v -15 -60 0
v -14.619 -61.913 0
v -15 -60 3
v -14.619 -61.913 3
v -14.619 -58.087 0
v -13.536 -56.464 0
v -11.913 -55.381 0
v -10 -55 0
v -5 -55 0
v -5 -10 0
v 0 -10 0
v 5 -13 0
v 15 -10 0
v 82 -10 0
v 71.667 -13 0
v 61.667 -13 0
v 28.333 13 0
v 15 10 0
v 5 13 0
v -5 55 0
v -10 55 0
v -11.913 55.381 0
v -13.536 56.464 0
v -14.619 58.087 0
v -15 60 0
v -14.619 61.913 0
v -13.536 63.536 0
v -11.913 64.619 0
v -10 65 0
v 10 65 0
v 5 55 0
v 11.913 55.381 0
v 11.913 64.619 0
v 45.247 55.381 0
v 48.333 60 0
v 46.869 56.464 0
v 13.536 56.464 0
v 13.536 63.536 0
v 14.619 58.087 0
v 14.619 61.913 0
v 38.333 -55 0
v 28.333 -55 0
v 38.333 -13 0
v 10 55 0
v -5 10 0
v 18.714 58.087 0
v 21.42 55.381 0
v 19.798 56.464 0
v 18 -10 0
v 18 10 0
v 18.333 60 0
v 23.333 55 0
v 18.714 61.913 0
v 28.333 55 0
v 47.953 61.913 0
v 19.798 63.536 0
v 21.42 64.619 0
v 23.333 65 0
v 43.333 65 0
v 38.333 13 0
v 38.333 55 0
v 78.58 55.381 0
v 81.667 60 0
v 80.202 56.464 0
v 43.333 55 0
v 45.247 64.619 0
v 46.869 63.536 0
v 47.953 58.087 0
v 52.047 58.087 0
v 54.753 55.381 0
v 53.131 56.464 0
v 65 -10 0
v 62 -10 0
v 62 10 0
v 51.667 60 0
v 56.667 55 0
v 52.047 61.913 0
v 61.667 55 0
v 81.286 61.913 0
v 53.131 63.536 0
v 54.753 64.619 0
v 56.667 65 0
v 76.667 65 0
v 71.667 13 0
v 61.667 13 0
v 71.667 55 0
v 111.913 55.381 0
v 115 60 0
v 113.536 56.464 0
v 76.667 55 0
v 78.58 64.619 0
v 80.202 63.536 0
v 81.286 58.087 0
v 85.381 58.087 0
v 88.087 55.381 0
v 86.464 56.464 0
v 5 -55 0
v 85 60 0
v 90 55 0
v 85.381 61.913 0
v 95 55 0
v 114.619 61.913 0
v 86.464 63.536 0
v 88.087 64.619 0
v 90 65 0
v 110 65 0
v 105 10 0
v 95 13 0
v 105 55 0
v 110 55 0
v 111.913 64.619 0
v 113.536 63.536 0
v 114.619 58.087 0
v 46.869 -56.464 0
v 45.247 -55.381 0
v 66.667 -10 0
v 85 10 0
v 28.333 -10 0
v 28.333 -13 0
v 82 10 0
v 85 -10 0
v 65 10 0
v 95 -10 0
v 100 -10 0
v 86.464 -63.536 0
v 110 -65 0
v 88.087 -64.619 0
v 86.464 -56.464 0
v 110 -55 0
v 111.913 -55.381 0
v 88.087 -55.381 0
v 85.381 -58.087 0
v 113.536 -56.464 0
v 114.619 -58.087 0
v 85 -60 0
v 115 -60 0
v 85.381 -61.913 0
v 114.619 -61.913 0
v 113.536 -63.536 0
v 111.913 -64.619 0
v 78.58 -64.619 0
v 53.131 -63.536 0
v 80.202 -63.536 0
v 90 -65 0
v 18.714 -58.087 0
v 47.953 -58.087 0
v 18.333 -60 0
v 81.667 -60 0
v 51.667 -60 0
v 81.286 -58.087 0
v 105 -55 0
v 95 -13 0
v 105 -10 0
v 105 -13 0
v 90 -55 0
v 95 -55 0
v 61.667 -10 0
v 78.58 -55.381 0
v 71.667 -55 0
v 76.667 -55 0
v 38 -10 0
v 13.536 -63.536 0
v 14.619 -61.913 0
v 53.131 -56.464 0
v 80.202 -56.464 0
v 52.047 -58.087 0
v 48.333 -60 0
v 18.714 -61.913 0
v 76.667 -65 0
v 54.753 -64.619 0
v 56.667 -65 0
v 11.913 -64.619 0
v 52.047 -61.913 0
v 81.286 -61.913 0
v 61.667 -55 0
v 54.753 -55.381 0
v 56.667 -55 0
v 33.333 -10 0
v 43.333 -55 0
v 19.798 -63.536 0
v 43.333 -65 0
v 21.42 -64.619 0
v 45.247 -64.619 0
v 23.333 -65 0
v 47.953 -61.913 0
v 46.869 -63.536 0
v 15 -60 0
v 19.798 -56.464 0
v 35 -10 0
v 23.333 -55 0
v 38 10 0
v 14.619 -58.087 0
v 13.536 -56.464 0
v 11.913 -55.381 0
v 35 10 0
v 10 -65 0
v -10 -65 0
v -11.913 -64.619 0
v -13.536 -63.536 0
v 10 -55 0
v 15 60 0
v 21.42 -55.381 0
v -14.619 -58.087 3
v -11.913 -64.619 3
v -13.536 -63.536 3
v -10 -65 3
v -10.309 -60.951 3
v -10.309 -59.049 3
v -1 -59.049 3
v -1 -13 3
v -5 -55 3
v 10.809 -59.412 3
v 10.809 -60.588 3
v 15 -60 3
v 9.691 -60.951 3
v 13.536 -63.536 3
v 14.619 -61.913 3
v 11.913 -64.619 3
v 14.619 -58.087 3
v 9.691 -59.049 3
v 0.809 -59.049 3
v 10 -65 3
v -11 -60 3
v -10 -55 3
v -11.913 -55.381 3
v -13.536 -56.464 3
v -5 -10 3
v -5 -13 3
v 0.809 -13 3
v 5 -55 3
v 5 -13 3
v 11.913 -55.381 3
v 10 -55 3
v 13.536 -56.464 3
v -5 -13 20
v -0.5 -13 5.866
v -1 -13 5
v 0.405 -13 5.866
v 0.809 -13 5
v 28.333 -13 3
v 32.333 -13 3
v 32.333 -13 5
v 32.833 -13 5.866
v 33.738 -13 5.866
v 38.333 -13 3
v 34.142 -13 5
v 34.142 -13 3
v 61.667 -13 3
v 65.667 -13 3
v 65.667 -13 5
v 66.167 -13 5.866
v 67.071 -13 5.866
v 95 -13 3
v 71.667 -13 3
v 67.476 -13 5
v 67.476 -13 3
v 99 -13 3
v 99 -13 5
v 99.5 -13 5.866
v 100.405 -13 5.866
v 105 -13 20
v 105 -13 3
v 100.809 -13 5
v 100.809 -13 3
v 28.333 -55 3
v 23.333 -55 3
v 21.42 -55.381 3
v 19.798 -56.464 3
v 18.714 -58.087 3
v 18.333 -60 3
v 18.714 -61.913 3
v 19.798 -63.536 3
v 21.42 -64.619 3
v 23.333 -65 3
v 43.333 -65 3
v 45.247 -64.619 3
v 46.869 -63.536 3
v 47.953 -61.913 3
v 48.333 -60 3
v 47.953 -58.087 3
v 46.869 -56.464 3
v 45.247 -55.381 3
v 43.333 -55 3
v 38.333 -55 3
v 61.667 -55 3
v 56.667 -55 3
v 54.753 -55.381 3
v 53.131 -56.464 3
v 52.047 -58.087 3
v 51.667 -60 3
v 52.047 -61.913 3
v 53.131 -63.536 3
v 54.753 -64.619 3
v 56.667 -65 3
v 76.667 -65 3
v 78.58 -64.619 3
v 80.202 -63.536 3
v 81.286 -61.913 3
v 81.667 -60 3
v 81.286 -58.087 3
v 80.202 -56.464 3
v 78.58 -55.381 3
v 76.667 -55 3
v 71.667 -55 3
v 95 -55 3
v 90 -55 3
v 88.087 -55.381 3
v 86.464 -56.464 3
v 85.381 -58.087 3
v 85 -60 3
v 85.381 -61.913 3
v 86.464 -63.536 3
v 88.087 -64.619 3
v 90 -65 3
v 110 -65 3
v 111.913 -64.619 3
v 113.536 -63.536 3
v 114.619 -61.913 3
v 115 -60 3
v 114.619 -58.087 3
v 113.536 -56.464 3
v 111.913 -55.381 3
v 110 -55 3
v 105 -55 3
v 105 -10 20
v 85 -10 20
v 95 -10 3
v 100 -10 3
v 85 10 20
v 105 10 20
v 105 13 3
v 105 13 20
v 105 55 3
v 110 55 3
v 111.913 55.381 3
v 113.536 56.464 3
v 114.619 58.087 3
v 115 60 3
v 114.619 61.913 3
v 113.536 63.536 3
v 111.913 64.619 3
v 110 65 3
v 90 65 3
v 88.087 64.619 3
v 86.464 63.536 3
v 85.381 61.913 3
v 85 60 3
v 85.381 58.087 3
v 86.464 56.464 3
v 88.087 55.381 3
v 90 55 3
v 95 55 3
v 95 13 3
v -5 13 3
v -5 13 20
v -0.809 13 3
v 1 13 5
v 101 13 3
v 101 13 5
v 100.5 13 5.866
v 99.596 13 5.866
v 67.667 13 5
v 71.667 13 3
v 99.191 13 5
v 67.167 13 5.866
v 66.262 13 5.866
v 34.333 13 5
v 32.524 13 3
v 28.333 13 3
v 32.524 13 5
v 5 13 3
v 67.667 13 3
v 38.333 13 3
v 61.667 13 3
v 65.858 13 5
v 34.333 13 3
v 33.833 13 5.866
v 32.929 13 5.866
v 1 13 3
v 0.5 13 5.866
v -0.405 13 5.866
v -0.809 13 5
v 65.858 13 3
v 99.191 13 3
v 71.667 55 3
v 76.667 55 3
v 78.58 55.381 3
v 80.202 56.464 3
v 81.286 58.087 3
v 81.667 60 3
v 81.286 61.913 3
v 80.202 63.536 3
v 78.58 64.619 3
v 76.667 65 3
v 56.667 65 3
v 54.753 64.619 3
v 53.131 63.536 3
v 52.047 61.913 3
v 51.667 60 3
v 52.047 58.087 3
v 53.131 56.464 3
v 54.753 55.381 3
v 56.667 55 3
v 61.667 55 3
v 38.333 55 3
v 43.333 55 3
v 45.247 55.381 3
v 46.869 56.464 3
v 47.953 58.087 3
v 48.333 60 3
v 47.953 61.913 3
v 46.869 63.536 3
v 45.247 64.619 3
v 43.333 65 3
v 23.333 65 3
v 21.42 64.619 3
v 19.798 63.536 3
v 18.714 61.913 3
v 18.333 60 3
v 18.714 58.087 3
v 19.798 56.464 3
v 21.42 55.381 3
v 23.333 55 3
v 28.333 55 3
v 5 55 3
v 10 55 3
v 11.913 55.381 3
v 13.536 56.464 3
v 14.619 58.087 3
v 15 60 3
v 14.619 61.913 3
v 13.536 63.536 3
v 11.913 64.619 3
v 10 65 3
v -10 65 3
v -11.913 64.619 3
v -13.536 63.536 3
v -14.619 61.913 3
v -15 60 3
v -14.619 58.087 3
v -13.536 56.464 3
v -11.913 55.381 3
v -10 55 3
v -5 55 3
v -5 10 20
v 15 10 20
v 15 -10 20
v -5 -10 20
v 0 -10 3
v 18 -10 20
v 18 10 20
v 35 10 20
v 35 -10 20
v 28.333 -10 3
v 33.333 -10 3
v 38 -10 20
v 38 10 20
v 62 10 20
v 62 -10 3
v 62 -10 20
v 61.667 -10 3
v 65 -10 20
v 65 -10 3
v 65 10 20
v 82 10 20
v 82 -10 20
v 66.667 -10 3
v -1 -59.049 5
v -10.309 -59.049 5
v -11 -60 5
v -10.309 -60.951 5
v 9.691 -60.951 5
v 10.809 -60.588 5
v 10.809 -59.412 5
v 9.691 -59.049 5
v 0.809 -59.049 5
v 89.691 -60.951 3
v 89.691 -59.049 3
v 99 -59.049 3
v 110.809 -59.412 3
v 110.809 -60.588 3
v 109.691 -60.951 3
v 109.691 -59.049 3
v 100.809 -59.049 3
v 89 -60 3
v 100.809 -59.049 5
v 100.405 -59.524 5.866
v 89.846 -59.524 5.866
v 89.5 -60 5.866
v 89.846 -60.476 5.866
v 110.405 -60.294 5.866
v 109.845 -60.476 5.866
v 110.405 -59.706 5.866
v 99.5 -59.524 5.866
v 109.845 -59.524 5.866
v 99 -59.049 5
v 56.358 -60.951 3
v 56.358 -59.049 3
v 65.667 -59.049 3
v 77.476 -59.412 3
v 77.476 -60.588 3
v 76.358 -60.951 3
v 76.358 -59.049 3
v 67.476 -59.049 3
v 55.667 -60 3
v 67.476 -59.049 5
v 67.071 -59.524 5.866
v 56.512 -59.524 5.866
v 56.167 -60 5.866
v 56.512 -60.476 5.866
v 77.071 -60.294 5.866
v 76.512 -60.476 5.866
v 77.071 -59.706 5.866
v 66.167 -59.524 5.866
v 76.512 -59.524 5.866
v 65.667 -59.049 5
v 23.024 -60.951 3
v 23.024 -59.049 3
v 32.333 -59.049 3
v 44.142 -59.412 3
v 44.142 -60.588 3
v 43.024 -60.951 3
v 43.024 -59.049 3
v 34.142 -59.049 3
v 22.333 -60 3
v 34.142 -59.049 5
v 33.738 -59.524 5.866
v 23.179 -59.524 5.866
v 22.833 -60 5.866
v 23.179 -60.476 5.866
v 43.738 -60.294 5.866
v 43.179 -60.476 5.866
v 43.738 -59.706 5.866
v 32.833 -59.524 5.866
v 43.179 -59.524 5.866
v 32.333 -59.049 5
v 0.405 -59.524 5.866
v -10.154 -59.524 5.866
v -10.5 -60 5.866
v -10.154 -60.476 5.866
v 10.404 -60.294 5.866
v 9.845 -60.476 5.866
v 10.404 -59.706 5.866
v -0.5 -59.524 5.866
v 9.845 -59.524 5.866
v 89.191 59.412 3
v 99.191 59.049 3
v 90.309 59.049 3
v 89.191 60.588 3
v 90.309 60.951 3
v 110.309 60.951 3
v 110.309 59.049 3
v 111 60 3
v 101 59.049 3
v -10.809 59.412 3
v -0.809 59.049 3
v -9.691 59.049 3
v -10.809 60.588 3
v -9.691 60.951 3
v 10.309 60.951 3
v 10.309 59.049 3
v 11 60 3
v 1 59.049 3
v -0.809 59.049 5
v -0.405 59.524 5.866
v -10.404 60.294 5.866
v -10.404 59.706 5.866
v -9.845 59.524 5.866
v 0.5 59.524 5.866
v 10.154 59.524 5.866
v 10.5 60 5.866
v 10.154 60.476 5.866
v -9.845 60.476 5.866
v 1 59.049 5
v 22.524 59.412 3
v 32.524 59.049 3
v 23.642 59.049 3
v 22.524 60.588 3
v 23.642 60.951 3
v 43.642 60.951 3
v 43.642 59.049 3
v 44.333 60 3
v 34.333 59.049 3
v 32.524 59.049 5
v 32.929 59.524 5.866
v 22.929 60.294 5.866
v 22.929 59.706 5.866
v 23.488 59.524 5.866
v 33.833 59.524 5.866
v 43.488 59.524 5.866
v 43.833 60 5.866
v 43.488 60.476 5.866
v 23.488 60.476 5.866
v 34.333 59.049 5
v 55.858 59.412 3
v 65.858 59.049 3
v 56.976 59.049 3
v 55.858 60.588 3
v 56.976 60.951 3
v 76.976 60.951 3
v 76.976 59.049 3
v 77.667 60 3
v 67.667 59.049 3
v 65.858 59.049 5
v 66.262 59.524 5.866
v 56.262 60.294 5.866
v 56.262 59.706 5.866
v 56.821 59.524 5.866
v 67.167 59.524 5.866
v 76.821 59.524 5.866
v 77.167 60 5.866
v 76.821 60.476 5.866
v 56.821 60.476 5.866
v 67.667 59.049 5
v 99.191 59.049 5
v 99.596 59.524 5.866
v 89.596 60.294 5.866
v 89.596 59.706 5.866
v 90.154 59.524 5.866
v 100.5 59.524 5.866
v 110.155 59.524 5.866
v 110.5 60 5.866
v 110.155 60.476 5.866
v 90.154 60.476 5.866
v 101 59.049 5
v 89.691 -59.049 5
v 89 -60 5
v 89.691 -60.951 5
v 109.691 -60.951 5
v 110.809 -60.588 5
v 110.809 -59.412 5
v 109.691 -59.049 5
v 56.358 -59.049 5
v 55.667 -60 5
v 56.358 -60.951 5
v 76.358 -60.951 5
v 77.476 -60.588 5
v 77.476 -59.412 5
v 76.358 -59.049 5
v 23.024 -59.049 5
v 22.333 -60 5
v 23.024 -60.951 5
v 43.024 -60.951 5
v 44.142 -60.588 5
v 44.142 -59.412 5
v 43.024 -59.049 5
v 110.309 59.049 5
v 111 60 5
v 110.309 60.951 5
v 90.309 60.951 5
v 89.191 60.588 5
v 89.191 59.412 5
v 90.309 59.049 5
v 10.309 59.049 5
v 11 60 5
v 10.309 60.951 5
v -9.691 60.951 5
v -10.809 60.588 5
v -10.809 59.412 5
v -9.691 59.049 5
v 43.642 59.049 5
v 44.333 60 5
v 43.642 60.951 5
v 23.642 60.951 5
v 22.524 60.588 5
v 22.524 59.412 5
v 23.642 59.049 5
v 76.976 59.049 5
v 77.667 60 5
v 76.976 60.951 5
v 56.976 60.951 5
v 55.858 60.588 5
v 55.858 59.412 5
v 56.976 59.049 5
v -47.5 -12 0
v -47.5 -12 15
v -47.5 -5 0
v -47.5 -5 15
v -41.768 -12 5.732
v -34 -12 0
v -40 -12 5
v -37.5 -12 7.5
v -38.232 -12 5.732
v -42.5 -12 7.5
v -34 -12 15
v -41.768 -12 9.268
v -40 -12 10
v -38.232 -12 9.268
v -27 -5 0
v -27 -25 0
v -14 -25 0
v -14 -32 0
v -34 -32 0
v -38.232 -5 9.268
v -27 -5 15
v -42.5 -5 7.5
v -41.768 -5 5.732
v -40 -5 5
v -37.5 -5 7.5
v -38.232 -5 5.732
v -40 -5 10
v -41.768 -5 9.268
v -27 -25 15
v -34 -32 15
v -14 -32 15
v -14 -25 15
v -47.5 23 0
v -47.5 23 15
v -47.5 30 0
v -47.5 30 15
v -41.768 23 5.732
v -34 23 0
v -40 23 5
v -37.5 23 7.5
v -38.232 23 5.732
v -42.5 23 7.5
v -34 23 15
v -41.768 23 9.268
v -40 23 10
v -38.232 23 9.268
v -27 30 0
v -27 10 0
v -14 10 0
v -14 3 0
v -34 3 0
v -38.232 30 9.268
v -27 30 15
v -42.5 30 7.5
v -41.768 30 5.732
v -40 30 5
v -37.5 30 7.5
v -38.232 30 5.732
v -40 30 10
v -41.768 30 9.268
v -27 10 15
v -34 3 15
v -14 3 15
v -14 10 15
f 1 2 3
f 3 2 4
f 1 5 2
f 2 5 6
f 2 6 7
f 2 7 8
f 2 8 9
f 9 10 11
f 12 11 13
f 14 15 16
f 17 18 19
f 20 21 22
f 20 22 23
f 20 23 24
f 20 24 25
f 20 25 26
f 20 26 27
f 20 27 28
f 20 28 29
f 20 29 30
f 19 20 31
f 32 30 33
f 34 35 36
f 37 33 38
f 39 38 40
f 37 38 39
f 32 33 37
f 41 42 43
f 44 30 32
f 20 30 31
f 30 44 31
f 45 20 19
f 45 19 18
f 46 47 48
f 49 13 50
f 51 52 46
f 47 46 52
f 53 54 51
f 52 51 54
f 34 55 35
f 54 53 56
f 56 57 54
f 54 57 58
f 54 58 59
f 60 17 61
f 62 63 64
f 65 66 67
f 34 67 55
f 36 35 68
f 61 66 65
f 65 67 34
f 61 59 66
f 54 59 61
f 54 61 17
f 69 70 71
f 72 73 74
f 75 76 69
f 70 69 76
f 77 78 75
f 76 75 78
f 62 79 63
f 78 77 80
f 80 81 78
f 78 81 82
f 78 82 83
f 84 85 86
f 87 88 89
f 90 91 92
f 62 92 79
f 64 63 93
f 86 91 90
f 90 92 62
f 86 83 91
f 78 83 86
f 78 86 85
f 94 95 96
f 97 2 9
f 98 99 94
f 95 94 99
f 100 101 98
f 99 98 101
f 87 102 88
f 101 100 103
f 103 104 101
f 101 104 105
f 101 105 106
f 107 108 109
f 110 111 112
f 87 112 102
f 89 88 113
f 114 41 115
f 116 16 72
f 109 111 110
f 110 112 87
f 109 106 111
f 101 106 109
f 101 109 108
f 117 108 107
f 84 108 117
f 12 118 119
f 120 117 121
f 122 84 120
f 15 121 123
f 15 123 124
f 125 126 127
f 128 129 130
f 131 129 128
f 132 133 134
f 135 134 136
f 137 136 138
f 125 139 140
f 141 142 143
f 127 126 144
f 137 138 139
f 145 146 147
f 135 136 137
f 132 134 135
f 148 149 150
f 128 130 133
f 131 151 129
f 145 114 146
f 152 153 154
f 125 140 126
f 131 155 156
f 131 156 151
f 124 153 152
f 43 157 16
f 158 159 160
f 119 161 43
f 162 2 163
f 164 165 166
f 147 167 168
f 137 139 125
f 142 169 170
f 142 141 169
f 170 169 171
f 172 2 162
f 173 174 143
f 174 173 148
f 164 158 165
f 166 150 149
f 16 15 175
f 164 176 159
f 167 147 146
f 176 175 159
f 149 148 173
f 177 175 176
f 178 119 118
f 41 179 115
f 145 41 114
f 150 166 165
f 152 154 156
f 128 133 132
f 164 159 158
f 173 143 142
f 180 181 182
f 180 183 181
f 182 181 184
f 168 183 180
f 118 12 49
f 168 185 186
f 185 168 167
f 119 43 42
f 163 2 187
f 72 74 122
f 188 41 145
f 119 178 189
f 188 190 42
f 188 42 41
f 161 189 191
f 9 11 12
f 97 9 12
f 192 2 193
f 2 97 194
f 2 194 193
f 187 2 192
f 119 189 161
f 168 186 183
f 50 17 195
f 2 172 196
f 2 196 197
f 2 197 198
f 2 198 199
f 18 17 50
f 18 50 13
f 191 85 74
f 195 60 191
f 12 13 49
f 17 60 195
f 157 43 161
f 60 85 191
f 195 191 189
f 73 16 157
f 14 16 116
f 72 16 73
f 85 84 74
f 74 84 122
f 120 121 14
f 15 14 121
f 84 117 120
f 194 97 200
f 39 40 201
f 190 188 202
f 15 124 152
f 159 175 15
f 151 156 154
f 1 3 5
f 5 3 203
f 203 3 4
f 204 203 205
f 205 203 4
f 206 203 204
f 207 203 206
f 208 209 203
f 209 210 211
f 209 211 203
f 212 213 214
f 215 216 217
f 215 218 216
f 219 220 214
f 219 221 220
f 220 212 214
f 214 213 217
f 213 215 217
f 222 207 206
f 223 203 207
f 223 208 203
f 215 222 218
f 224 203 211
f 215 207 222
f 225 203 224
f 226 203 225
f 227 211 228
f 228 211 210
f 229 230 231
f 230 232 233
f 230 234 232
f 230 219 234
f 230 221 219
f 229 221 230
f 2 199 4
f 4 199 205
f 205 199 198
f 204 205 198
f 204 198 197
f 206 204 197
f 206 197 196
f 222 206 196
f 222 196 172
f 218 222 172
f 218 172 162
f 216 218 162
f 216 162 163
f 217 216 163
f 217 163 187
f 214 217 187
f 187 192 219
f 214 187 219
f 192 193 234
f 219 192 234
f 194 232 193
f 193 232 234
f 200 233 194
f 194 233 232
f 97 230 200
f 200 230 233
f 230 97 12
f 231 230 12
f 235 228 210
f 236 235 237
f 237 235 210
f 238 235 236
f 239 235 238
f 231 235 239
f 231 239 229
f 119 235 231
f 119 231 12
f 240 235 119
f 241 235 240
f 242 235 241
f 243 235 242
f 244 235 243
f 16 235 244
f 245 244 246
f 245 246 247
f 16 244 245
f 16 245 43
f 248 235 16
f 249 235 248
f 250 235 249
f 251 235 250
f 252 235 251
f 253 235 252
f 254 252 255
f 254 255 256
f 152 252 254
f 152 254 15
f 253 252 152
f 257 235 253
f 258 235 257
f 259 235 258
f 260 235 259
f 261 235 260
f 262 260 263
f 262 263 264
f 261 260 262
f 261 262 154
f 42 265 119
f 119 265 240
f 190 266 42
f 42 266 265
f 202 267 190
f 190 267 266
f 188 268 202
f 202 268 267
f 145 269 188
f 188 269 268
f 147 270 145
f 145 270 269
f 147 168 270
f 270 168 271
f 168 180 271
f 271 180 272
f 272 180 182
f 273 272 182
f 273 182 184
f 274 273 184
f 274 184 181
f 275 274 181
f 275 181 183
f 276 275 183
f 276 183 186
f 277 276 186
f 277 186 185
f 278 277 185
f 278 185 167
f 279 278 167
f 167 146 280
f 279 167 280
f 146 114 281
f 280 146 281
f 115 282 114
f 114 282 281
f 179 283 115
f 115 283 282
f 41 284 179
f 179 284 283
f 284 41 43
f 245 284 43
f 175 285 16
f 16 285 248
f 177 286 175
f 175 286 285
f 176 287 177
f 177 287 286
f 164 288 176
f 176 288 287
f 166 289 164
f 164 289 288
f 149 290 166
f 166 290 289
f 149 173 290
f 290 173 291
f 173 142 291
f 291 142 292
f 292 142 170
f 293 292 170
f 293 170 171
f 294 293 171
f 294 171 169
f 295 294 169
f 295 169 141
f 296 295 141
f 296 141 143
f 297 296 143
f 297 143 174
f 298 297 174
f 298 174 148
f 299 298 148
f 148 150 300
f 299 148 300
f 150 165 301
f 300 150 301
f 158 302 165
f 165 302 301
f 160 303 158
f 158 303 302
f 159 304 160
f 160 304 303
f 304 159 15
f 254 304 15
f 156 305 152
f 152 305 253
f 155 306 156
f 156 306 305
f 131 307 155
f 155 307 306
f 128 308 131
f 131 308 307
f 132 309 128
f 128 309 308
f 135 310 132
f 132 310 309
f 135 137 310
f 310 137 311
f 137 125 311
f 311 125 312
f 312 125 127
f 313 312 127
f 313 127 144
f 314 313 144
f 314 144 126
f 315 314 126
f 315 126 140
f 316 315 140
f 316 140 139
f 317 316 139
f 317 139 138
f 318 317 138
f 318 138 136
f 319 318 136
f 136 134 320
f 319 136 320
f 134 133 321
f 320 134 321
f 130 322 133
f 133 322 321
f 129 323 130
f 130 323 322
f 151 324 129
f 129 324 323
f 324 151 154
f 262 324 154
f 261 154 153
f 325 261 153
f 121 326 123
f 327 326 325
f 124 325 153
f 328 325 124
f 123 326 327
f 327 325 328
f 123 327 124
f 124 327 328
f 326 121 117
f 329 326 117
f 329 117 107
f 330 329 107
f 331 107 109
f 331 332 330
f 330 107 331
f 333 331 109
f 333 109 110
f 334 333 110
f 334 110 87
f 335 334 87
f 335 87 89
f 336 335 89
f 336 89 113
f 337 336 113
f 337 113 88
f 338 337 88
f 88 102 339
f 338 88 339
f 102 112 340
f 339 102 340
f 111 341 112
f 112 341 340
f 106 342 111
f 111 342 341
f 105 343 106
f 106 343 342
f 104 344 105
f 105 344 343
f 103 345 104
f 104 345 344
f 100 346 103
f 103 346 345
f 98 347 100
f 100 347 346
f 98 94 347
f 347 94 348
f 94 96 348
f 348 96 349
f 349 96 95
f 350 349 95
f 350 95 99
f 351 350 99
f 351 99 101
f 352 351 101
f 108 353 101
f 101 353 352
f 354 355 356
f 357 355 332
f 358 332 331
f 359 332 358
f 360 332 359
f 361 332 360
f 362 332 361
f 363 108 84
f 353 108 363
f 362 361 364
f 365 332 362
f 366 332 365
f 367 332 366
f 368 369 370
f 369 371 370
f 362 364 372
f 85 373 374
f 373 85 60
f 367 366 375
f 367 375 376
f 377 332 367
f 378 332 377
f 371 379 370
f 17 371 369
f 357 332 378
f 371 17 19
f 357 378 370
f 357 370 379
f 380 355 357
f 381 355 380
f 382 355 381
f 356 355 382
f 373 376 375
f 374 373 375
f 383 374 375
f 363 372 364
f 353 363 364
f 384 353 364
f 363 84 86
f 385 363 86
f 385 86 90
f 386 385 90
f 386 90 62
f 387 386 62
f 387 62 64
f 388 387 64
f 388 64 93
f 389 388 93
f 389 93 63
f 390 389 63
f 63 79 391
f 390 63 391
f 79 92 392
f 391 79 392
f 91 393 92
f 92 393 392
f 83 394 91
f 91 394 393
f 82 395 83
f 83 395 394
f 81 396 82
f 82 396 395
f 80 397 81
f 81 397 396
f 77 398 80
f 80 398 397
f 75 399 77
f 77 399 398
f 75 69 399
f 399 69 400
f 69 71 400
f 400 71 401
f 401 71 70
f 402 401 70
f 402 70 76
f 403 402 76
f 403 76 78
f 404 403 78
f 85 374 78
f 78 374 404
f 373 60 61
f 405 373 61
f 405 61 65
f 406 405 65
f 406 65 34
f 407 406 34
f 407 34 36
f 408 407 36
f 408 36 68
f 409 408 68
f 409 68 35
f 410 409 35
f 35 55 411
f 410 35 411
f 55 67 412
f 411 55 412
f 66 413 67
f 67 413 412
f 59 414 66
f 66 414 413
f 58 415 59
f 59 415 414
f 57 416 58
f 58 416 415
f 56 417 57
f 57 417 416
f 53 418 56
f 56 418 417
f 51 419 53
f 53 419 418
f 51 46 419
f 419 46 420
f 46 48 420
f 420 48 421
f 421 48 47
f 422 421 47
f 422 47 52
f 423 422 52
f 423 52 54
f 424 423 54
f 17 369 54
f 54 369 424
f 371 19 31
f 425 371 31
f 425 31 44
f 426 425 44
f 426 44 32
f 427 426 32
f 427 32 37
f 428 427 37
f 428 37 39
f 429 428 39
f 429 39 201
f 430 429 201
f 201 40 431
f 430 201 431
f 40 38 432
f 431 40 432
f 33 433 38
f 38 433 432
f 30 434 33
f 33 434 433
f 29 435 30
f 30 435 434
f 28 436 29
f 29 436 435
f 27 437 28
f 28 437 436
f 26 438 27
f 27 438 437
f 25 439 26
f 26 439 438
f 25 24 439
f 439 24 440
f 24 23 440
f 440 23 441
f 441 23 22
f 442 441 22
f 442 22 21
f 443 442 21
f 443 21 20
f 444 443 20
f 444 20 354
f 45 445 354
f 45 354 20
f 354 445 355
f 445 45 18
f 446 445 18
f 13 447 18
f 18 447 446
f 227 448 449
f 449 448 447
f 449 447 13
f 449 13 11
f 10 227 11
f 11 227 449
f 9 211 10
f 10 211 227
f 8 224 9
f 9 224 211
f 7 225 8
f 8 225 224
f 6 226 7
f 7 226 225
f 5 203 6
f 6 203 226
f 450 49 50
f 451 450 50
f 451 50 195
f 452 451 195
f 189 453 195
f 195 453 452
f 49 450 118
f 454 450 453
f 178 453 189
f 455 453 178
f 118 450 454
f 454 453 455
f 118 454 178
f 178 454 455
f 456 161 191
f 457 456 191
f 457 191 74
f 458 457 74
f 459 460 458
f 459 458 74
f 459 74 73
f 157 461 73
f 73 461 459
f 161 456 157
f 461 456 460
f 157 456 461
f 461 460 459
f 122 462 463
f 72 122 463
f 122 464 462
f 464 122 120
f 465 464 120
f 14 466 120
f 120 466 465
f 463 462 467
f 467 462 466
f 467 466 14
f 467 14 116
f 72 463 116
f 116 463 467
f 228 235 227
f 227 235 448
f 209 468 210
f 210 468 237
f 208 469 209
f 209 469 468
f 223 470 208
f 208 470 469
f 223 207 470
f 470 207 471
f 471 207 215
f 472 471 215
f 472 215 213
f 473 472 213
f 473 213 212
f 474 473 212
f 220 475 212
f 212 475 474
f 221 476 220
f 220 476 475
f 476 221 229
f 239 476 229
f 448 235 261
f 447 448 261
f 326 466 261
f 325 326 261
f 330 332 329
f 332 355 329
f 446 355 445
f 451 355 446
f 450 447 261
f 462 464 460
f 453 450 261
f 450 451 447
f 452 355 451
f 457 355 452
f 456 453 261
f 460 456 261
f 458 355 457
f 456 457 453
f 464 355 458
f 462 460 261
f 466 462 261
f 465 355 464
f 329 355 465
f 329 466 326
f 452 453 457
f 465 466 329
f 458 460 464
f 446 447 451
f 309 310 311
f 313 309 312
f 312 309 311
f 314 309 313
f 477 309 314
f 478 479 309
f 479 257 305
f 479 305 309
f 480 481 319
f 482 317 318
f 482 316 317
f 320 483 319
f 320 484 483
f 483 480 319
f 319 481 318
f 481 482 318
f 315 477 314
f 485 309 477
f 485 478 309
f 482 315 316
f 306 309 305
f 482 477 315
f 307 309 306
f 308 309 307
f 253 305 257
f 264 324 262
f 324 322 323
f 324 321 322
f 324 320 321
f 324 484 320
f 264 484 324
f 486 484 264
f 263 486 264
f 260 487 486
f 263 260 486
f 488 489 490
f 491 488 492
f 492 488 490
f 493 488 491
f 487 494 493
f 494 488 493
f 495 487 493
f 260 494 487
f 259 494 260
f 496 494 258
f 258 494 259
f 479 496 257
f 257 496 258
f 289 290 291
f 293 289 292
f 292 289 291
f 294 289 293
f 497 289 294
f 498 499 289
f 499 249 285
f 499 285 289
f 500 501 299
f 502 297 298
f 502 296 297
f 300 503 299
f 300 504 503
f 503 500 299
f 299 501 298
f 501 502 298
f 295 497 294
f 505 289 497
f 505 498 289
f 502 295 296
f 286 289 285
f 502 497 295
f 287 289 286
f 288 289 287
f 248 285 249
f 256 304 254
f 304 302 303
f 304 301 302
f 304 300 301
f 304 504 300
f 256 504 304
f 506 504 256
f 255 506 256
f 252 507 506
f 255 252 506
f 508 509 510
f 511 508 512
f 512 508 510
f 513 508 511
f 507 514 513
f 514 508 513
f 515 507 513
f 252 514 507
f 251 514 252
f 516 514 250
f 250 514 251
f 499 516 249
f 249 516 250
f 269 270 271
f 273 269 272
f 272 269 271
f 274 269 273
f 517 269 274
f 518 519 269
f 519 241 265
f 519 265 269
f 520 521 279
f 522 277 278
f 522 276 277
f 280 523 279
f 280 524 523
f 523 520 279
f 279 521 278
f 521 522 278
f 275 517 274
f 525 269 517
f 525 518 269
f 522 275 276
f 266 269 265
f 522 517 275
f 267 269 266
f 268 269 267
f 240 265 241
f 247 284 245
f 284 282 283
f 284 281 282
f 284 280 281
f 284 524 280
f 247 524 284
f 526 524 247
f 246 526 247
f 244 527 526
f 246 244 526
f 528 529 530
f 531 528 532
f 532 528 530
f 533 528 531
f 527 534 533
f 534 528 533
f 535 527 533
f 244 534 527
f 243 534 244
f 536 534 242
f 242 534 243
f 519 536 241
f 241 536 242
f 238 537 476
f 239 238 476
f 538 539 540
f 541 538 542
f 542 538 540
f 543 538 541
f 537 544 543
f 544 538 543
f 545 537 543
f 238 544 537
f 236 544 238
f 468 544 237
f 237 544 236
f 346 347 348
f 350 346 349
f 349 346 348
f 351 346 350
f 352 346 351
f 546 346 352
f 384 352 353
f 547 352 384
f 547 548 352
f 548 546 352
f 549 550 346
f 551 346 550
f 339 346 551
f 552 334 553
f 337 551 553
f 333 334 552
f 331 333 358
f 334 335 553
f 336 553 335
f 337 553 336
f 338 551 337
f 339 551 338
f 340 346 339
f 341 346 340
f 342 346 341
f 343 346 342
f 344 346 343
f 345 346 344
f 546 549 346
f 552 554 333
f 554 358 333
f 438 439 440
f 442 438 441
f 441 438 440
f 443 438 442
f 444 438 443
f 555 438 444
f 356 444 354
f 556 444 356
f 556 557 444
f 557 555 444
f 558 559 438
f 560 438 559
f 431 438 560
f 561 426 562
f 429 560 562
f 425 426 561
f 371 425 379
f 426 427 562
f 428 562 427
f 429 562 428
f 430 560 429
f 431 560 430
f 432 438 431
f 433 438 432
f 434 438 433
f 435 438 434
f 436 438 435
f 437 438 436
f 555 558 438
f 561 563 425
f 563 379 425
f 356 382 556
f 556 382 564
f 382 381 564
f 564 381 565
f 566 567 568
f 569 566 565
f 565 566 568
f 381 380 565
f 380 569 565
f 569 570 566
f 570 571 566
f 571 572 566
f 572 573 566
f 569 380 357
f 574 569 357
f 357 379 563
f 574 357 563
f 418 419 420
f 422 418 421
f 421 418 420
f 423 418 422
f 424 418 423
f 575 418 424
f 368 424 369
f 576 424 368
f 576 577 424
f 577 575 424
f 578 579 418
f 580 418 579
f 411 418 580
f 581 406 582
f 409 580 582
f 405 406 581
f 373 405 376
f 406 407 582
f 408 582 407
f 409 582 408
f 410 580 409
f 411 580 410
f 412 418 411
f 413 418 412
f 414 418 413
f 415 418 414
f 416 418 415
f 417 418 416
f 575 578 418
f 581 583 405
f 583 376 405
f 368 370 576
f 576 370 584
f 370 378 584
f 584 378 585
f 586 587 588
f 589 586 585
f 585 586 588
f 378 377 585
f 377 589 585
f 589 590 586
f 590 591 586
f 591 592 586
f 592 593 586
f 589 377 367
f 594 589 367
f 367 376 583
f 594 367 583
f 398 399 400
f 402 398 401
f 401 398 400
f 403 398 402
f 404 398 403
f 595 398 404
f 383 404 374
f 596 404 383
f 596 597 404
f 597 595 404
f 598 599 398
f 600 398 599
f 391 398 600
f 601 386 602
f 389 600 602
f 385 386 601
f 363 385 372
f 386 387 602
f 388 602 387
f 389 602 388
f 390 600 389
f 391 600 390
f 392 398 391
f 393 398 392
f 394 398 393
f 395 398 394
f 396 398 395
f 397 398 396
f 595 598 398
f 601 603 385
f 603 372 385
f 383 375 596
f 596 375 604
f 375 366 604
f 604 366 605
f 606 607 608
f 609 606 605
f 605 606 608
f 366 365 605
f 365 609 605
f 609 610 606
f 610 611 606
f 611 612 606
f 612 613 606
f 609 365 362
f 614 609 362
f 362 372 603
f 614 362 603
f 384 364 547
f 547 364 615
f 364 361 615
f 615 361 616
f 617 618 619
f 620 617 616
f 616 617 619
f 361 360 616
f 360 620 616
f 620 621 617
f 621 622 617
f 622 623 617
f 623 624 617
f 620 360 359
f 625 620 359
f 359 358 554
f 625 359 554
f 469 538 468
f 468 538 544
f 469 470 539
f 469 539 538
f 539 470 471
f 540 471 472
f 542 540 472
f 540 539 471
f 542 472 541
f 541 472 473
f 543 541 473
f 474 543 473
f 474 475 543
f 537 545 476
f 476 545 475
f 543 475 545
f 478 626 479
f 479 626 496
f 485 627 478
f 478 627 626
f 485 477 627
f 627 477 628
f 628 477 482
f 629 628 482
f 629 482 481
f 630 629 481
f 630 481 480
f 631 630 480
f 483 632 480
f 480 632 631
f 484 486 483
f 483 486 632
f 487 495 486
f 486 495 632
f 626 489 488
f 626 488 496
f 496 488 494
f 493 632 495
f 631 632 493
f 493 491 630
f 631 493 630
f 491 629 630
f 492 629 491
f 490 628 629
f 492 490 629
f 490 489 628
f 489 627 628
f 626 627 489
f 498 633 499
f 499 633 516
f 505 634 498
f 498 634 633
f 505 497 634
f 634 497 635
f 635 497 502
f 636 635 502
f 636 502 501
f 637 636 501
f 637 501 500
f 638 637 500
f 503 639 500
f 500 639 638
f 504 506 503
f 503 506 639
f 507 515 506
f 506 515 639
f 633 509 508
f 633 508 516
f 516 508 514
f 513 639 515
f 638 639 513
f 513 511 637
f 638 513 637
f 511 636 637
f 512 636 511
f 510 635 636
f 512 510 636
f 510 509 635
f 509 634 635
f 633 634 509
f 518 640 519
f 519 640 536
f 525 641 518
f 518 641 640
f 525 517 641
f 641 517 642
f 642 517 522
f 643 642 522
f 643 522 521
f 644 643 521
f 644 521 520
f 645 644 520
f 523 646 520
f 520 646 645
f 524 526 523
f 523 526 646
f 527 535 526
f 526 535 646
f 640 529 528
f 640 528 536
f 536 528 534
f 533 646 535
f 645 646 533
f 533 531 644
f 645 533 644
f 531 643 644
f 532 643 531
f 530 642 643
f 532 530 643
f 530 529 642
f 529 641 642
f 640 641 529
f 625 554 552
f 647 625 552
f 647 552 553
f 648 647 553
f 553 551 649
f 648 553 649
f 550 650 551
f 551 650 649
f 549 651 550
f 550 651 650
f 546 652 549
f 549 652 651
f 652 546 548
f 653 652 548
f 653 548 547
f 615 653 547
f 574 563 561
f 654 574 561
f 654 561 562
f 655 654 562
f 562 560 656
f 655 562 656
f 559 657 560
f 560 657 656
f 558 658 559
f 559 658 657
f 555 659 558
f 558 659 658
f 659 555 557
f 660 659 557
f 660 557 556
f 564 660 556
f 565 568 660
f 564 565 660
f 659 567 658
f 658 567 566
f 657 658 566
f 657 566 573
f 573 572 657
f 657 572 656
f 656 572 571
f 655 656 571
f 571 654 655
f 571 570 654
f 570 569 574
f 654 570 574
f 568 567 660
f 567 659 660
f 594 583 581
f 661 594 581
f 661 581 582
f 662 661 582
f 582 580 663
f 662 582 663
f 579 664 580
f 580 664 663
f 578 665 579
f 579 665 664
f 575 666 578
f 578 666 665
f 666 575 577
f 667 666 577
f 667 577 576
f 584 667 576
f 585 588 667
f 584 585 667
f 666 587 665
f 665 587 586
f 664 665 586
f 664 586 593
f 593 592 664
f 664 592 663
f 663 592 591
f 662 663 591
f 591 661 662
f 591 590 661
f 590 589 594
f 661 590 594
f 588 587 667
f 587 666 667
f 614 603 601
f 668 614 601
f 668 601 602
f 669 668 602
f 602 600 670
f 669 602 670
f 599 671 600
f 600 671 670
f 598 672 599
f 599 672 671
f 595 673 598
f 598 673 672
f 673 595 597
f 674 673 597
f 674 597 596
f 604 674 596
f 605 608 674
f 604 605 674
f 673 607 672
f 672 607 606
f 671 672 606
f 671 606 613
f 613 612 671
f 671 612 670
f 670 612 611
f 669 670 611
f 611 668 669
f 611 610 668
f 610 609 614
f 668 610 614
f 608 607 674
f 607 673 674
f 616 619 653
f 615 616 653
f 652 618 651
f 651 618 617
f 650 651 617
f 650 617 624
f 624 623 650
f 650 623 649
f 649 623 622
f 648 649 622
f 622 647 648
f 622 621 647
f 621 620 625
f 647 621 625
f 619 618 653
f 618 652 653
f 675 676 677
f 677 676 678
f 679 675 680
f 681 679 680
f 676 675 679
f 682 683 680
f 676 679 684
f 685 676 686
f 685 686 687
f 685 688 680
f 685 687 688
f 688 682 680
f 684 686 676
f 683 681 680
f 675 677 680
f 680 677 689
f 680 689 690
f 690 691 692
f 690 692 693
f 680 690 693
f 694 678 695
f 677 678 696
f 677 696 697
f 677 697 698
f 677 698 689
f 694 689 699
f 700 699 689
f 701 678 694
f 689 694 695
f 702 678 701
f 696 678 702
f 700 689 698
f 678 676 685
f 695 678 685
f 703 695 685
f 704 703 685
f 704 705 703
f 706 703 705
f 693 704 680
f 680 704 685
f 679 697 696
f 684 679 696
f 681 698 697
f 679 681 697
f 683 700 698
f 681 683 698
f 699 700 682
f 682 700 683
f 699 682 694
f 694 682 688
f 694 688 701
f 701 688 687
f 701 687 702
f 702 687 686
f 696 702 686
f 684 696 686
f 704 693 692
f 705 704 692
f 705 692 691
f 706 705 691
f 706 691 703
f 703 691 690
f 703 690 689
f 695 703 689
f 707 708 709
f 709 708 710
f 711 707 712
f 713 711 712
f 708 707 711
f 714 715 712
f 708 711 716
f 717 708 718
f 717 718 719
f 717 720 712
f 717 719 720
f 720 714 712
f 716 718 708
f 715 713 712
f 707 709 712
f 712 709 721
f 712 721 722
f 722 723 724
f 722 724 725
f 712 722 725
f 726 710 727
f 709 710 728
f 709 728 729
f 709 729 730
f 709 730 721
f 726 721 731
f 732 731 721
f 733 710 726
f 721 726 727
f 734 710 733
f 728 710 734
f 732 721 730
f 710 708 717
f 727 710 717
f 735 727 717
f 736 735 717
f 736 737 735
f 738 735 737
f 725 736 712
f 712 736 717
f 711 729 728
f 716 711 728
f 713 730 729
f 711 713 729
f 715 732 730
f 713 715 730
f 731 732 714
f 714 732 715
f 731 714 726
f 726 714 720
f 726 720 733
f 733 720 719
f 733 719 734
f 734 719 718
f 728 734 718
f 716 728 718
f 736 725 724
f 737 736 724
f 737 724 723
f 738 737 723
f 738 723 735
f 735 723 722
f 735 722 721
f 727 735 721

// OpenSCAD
ladder();

//clamp();
//rotate([0,0,180])
//translate([-100,0,0])
//clamp();


translate([-40,-5,15/2])
rotate([90,0,0])
clamp();

translate([-40,30,15/2])
rotate([90,0,0])
clamp();

module clamp() {
	height=20;
	width=15;
	thickness=7;

	difference() {
		hook();
		hole();
	}

	module hole() {
		translate([0,0,-0.5])
		cylinder(d=5, h=thickness+1);
	}

	module hook() {
		translate([-15/2,-width/2,0])
		cube([20,width,thickness]);

		translate([6,-width/2,0])
		cube([thickness,width,height]);

		translate([6,-width/2,height])
		cube([20,width,thickness]);
	}
}

module ladder() {
	height=20;

	rungs();
	sides();
	supports();

	module rungs() {
		for (i = [0:100/3:100]) {
			translate([i,0,0])
			rung();
		}

		for (i = [0:100/3:100]) {
			translate([i,0,0])
			rotate([0,0,180])
			rung();
		}
	}

	module sides() {
		translate([-5,10,0])
		cube([110,3,height]);

		translate([-5,-13,0])
		cube([110,3,height]);
	}

	module supports() {
		translate([15,-25/2,0])
		cube([3,25,height]);

		translate([100-15-3,-25/2,0])
		cube([3,25,height]);

		translate([35,-25/2,0])
		cube([3,25,height]);

		translate([100-35-3,-25/2,0])
		cube([3,25,height]);
	}
}

module rung() {
	length=60;
	height=3;
	width=10;
	support_height=2;
	support_width=2;

	translate([-width/2,10,0])
	cube([width,50,height]);

	hull() {
		translate([-10,length,0])
		cylinder(d=width, h=height);
		translate([10,length,0])
		cylinder(d=width, h=height);
	}

	hull() {
		translate([-10,length,height])
		cylinder(d=support_width, h=support_height);

		translate([10,length,height])
		cylinder(d=support_width, h=support_height);

		translate([-10,length,height+support_height])
		sphere(d=support_width);

		translate([10,length,height+support_height])
		sphere(d=support_width);
	}

	hull() {
		translate([0,length,height])
		cylinder(d=support_width, h=support_height);

		translate([0,11,height])
		cylinder(d=support_width, h=support_height);

		translate([0,length,height+support_height])
		sphere(d=support_width);

		translate([0,11,height+support_height])
		sphere(d=support_width);
	}
}

module footprint() {
	height=7;
	difference() {
		hull() {
			cylinder(d=25, h=height);

			translate([100,0,0])
			cylinder(d=25, h=height);
		}

		translate([0,0,-0.5])
		cylinder(d=5, h=height+1);

		translate([100,0,-0.5])
		cylinder(d=5, h=height+1);
	}
}
